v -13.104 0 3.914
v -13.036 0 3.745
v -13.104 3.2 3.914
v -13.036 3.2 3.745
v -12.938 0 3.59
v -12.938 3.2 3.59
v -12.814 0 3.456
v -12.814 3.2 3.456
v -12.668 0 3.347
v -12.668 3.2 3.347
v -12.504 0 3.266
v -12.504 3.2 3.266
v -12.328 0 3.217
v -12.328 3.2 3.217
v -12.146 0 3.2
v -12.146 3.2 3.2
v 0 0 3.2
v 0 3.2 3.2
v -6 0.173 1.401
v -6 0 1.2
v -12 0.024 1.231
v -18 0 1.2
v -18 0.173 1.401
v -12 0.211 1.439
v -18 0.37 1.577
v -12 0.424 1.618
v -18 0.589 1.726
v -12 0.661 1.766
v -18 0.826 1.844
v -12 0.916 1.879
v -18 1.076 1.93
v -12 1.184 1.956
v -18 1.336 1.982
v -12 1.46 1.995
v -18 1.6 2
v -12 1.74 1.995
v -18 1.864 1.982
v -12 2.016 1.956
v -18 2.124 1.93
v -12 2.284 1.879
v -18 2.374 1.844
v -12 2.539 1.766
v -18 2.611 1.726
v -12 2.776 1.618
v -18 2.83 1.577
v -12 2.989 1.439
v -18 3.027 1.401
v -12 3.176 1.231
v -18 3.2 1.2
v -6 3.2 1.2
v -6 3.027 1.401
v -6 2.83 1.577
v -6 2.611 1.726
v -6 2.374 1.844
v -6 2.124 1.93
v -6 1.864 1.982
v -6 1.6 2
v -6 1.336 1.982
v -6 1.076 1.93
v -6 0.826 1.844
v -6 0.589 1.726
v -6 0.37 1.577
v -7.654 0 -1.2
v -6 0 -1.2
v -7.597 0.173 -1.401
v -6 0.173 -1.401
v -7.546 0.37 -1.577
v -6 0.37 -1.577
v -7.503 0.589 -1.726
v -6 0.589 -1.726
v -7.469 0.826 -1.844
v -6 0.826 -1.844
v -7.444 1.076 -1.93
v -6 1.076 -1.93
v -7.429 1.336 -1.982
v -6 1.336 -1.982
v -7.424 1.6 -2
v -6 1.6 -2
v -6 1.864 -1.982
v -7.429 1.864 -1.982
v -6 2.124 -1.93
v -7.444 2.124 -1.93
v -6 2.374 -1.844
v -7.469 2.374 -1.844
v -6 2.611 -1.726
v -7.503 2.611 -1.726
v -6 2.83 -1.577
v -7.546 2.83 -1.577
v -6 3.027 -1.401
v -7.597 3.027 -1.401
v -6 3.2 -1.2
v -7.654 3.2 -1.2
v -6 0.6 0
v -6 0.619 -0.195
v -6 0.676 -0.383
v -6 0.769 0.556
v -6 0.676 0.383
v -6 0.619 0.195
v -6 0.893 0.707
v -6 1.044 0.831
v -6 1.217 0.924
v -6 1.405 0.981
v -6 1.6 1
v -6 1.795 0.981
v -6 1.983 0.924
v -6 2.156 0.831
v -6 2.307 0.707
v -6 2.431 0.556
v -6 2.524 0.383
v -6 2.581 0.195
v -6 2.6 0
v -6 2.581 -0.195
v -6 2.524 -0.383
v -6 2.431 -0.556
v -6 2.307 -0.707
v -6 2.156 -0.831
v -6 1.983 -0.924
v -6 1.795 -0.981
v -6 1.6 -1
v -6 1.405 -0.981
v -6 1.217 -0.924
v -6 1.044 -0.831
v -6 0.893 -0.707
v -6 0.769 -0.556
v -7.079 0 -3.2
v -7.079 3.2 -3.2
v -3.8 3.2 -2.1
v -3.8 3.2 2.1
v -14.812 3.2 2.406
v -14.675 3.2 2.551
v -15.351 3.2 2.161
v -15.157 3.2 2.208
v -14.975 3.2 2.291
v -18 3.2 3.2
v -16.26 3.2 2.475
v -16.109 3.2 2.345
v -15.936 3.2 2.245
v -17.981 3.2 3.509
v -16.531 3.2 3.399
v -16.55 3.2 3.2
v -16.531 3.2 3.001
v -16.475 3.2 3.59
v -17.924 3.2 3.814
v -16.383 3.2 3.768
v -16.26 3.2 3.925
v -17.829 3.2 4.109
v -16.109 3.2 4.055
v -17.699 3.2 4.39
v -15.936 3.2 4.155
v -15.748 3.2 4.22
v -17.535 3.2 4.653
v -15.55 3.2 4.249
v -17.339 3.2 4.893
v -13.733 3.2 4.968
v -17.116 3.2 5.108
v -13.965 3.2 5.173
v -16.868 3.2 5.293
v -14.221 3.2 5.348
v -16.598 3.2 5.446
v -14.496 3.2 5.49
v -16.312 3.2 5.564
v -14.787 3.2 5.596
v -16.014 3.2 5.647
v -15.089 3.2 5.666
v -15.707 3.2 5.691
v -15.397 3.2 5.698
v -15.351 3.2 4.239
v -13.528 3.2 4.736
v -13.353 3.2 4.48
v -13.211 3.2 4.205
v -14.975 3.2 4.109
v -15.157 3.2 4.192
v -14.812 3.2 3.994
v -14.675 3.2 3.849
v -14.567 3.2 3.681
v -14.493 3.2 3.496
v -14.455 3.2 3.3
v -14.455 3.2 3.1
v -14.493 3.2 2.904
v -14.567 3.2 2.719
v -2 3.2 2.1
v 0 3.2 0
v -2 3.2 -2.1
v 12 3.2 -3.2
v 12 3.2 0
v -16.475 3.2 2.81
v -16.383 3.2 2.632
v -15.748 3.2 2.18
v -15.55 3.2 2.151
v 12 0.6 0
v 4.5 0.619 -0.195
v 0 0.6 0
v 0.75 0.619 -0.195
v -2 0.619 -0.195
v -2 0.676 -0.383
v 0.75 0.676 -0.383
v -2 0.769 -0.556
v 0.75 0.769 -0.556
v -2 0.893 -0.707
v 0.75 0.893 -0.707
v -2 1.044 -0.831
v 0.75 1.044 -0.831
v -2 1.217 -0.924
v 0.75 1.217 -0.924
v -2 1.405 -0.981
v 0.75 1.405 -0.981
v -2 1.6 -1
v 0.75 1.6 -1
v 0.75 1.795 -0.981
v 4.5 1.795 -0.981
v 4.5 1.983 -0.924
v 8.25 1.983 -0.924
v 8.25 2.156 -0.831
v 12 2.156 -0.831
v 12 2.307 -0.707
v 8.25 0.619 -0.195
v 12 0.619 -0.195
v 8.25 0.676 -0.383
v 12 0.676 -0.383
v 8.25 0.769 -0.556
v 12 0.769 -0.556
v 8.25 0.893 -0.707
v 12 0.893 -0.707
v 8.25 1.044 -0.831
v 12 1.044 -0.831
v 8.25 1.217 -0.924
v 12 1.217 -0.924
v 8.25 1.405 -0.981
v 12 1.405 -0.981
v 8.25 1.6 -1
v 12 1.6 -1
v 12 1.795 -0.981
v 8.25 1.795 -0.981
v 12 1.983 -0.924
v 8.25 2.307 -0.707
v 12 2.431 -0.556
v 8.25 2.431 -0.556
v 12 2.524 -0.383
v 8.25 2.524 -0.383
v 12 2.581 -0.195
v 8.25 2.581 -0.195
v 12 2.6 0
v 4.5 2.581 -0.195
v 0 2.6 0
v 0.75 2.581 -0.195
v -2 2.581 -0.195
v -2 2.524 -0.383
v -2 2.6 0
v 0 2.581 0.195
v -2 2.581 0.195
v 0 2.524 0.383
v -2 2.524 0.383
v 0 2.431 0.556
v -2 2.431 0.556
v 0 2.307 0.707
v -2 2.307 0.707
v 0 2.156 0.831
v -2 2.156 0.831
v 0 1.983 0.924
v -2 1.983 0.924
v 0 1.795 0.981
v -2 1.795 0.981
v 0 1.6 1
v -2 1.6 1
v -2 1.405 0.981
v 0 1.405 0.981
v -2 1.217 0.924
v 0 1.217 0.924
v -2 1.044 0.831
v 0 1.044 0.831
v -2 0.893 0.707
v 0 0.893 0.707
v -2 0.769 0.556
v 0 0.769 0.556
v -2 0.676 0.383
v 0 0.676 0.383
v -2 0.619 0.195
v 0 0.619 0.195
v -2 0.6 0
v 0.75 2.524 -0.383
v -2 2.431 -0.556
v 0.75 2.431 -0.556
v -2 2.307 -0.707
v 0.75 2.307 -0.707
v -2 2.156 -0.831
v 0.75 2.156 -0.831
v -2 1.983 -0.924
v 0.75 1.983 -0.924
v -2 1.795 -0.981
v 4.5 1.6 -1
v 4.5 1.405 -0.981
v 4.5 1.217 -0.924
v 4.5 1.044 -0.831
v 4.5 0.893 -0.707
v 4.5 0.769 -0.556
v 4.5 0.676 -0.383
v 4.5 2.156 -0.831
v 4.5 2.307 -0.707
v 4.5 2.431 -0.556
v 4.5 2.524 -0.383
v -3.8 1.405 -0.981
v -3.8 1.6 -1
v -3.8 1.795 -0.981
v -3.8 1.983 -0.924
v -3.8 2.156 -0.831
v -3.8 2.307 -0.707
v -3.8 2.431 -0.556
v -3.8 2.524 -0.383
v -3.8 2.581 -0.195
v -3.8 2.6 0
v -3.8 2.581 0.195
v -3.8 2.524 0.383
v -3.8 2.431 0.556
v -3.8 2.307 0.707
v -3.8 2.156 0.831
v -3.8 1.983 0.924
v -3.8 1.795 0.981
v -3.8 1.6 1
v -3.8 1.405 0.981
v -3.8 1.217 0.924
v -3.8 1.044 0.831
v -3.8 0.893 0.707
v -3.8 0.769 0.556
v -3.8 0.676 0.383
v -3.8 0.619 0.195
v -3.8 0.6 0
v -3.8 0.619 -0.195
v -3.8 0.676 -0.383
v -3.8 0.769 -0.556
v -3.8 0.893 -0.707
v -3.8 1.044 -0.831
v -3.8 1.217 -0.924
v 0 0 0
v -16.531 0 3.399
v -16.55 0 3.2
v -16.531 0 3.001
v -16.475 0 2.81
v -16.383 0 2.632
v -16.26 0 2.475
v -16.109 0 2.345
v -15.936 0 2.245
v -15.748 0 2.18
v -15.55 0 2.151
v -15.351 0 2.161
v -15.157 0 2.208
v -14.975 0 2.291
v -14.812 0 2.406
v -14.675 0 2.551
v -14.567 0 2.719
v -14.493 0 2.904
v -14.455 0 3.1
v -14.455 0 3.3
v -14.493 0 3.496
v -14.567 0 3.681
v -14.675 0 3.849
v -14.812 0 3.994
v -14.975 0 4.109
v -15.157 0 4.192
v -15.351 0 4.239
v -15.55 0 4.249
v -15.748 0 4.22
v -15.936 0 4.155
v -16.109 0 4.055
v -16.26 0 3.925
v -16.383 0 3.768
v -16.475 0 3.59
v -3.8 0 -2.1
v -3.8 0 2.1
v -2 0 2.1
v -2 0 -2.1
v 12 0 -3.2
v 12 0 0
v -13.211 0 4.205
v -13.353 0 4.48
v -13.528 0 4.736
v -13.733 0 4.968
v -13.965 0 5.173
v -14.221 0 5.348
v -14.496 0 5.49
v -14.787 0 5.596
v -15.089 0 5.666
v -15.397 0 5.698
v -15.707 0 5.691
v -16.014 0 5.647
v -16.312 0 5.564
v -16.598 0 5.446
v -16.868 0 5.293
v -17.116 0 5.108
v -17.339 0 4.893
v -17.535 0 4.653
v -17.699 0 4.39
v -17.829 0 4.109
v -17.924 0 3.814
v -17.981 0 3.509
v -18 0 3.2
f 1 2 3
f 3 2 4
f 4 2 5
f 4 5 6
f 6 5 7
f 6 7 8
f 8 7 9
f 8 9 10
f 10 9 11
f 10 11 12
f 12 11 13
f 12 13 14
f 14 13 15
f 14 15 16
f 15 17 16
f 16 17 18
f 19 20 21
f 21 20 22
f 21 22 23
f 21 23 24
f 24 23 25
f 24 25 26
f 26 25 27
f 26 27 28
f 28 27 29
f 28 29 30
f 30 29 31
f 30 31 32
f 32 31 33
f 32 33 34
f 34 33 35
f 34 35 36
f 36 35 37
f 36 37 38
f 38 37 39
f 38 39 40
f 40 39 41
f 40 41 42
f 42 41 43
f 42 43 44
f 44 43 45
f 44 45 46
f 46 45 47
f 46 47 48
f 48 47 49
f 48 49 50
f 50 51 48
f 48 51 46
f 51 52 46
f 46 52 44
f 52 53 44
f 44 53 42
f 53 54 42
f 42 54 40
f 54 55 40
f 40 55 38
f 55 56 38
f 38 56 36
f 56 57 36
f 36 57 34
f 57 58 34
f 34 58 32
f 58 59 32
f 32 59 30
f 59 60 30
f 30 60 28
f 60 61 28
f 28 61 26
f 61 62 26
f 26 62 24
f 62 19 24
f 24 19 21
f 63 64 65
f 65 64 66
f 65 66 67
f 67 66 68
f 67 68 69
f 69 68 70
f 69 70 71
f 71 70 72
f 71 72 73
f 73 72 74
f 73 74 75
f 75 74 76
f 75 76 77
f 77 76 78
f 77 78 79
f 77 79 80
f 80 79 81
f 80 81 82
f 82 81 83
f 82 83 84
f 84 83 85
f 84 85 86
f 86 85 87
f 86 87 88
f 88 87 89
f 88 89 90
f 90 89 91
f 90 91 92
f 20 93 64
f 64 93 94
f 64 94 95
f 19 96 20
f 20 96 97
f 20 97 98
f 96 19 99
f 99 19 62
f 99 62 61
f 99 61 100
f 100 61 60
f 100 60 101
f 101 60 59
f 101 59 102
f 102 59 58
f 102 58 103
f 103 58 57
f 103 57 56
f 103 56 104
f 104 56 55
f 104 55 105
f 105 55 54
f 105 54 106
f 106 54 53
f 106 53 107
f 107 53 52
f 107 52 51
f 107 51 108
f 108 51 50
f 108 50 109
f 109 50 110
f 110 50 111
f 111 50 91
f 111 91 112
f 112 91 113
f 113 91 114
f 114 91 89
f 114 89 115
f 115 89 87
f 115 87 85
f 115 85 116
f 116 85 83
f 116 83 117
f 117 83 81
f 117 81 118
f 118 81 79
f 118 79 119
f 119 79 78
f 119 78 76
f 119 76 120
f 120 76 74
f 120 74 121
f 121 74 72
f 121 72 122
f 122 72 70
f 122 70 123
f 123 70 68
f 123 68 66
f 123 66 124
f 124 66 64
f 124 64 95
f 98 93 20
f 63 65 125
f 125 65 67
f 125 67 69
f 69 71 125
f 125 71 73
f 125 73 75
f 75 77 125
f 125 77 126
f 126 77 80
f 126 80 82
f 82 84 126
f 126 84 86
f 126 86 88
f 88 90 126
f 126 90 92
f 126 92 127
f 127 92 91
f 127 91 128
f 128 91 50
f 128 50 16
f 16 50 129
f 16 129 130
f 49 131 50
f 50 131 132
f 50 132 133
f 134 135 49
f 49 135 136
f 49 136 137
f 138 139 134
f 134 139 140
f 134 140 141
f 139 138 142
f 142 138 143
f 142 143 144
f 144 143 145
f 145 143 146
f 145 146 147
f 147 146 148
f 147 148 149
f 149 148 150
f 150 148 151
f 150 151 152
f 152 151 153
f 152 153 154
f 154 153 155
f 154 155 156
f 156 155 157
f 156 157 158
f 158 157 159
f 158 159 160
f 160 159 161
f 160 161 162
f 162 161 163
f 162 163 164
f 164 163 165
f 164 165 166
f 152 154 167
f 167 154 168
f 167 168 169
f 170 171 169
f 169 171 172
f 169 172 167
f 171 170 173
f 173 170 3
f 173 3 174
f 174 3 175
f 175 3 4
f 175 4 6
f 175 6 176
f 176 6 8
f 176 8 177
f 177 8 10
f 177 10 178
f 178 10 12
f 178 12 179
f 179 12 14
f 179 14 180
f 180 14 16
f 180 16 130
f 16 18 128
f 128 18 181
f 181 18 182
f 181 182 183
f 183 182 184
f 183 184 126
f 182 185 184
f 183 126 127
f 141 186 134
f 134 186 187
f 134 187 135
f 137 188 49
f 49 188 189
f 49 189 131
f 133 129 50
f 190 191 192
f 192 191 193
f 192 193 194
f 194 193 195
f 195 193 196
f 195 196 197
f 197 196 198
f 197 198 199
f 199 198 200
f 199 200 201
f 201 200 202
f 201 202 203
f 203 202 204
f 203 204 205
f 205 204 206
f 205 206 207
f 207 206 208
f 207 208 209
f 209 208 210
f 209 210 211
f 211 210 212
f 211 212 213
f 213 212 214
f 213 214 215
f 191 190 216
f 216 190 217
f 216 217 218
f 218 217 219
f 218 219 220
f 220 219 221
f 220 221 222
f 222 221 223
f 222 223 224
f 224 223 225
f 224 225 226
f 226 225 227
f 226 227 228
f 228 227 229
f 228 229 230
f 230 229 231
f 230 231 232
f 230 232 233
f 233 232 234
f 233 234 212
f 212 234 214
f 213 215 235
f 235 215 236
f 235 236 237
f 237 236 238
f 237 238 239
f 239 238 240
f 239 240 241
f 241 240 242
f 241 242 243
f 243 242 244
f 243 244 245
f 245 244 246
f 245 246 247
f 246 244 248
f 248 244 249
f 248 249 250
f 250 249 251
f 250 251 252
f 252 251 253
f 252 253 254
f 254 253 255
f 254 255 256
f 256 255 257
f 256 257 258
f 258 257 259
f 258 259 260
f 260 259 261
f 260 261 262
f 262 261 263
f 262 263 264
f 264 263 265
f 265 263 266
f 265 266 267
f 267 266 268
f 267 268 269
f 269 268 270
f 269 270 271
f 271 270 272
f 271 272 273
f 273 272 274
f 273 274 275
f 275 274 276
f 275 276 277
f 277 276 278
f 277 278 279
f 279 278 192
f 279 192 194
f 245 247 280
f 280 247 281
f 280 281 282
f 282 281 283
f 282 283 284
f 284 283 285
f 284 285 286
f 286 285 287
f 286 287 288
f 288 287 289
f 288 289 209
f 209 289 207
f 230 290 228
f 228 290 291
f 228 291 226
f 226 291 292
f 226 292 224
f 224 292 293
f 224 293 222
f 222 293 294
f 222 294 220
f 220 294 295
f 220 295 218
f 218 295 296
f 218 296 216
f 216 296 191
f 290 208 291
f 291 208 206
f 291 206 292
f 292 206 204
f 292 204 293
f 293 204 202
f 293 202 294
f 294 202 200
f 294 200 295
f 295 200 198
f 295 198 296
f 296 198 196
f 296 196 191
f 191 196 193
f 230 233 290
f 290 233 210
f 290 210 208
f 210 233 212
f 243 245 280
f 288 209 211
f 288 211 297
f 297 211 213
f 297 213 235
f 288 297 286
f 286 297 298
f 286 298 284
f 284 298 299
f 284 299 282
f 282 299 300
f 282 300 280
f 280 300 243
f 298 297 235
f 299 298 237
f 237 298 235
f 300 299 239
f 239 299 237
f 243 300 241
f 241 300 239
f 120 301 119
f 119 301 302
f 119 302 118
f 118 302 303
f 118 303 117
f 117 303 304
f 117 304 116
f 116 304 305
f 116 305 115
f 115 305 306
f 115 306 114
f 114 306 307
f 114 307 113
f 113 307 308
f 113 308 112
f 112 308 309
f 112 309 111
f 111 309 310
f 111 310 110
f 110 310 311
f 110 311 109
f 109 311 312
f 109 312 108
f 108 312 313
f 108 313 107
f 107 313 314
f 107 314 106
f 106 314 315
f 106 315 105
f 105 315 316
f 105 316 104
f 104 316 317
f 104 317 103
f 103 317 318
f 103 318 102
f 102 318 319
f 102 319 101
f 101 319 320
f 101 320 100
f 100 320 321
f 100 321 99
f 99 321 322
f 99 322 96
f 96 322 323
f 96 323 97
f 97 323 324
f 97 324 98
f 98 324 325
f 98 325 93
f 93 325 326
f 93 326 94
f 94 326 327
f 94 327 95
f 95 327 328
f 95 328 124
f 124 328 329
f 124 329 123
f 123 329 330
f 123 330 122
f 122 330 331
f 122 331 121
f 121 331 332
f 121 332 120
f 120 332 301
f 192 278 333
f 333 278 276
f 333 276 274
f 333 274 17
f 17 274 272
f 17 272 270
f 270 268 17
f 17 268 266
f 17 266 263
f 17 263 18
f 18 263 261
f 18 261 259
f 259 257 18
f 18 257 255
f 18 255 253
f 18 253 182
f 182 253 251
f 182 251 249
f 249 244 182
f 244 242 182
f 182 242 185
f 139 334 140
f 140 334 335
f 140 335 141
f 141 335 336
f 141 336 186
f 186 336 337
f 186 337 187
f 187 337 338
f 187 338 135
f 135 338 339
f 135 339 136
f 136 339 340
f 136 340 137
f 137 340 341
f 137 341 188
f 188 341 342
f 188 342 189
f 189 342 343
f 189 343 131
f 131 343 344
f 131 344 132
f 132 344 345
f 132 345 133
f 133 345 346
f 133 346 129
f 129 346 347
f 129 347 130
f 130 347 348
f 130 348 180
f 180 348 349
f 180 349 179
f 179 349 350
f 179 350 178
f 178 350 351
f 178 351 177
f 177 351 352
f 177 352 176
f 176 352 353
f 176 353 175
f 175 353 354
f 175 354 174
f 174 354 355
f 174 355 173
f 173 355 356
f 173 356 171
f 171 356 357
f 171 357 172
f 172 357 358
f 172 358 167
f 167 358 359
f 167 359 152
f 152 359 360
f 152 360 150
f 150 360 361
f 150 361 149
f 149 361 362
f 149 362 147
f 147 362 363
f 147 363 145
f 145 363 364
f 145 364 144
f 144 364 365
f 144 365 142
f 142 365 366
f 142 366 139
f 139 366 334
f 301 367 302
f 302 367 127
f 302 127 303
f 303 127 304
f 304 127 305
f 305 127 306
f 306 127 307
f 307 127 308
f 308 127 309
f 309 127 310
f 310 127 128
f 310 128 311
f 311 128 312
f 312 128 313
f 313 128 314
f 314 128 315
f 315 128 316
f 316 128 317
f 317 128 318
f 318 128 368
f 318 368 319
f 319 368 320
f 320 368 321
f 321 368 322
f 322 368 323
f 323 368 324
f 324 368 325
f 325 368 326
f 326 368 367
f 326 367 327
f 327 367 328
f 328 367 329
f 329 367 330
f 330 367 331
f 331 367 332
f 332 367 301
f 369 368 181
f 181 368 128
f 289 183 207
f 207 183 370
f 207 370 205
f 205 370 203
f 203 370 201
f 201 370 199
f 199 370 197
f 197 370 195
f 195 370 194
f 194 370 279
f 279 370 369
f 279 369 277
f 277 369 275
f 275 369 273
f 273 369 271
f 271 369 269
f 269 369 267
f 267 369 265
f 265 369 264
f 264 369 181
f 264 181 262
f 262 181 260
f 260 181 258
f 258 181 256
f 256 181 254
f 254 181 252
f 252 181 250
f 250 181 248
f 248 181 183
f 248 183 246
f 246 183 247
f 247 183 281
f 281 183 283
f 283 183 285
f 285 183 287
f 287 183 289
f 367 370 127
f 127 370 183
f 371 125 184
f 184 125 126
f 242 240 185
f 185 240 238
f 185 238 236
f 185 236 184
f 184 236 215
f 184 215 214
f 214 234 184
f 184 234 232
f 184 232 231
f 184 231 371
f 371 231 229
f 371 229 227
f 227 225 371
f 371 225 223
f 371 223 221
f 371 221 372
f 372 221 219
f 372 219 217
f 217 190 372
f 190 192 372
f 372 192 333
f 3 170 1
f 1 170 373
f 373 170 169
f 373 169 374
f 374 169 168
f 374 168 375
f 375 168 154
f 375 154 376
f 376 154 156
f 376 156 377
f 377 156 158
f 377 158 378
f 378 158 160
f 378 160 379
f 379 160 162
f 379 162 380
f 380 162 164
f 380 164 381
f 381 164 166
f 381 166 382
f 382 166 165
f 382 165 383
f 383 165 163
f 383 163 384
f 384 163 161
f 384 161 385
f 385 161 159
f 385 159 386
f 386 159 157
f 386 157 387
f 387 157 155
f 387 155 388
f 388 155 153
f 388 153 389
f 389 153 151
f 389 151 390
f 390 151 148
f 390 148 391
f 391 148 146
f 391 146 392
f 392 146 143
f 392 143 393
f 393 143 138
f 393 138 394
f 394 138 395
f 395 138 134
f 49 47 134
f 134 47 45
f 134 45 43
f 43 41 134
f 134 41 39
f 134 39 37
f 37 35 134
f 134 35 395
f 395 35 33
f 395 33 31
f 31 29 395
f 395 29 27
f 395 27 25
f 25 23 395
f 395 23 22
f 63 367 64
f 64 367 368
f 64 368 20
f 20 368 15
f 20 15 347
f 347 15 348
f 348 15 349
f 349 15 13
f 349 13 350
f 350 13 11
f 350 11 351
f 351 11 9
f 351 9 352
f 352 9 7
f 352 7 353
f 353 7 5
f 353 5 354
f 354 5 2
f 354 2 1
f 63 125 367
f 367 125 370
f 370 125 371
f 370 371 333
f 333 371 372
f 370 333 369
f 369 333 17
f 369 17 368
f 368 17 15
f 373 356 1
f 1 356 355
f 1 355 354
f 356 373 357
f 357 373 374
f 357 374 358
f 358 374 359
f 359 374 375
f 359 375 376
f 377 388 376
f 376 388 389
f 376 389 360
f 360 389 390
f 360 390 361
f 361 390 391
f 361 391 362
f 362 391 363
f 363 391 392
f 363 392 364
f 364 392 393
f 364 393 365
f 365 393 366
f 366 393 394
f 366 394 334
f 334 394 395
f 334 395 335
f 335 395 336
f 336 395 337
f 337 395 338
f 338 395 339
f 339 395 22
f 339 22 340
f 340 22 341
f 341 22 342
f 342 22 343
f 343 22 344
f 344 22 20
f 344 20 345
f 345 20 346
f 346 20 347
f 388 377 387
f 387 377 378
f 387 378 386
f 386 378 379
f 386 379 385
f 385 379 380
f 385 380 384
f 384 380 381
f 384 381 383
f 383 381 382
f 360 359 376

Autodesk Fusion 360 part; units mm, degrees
sketch "Sketch1" plane through (0, 0, 0) normal (0, 1, 0) x (1, 0, 0)
  line L0 (12, 3.2) -> (12, 0)
  line L1 (12, 0) -> (0, 0)
  line L2 (-18, -3.2) -> (-18, 0)
  circle A0 centre (-15.5, -3.2) radius 1.05
  line L3 (-7.0785, 3.2) -> (-8, 0)
  line L4 (-8, 0) -> (-18, 0)
  line L5 (-7.0785, 3.2) -> (12, 3.2)
  line L6 (-3.8, 2.1) -> (-3.8, -2.1)
  line L7 (-3.8, -2.1) -> (-2, -2.1)
  line L8 (-2, -2.1) -> (-2, 2.1)
  line L9 (-2, 2.1) -> (-3.8, 2.1)
  line L10 (0, -3.2) -> (-13, -3.2)
  line L11 (0, -3.2) -> (0, 0)
  arc A1 (-18, -3.2) -> (-13, -3.2) centre (-15.5, -3.2) ccw
  dimension "d9" = 2.1
  dimension "d15" = 3.2
  dimension "d22" = 10
  dimension "d23" = 4.2
  dimension "d24" = 1.8
  dimension "d35" = 12
  dimension "d37" = 2.5
  dimension "d39" = 3.2
  dimension "d40" = 18
  dimension "d42" = 5
  dimension "d43" = 3.2
  dimension "d50" = 2
extrude "Extrude2" add sketch "Sketch1" along normal blind 3.2
sketch "Sketch3" plane through (-18, 0, 0) normal (-1, 0, 0) x (0, 0, 1)
  line L0 (0, 0) -> (3.2, 0)
  line L1 (3.2, 0) -> (3.2, 3.2)
  line L2 (3.2, 3.2) -> (0, 3.2)
  line L3 (0, 3.2) -> (0, 0)
  circle A0 centre (0, 1.6) radius 1
  circle A1 centre (0, 1.6) radius 2
  dimension "d44" = 2
  dimension "d45" = 4
extrude "Extrude7" cut sketch "Sketch3" against normal blind 30 contours L3 A0 | L3 A0
extrude "Extrude8" cut sketch "Sketch3" against normal blind 12 contours L0 L2 L3 A0 A1 | L0 L2 L3 A0 A1
fillet "Fillet4" radius 1 1 edges at (-13, 1.6, 3.2)
